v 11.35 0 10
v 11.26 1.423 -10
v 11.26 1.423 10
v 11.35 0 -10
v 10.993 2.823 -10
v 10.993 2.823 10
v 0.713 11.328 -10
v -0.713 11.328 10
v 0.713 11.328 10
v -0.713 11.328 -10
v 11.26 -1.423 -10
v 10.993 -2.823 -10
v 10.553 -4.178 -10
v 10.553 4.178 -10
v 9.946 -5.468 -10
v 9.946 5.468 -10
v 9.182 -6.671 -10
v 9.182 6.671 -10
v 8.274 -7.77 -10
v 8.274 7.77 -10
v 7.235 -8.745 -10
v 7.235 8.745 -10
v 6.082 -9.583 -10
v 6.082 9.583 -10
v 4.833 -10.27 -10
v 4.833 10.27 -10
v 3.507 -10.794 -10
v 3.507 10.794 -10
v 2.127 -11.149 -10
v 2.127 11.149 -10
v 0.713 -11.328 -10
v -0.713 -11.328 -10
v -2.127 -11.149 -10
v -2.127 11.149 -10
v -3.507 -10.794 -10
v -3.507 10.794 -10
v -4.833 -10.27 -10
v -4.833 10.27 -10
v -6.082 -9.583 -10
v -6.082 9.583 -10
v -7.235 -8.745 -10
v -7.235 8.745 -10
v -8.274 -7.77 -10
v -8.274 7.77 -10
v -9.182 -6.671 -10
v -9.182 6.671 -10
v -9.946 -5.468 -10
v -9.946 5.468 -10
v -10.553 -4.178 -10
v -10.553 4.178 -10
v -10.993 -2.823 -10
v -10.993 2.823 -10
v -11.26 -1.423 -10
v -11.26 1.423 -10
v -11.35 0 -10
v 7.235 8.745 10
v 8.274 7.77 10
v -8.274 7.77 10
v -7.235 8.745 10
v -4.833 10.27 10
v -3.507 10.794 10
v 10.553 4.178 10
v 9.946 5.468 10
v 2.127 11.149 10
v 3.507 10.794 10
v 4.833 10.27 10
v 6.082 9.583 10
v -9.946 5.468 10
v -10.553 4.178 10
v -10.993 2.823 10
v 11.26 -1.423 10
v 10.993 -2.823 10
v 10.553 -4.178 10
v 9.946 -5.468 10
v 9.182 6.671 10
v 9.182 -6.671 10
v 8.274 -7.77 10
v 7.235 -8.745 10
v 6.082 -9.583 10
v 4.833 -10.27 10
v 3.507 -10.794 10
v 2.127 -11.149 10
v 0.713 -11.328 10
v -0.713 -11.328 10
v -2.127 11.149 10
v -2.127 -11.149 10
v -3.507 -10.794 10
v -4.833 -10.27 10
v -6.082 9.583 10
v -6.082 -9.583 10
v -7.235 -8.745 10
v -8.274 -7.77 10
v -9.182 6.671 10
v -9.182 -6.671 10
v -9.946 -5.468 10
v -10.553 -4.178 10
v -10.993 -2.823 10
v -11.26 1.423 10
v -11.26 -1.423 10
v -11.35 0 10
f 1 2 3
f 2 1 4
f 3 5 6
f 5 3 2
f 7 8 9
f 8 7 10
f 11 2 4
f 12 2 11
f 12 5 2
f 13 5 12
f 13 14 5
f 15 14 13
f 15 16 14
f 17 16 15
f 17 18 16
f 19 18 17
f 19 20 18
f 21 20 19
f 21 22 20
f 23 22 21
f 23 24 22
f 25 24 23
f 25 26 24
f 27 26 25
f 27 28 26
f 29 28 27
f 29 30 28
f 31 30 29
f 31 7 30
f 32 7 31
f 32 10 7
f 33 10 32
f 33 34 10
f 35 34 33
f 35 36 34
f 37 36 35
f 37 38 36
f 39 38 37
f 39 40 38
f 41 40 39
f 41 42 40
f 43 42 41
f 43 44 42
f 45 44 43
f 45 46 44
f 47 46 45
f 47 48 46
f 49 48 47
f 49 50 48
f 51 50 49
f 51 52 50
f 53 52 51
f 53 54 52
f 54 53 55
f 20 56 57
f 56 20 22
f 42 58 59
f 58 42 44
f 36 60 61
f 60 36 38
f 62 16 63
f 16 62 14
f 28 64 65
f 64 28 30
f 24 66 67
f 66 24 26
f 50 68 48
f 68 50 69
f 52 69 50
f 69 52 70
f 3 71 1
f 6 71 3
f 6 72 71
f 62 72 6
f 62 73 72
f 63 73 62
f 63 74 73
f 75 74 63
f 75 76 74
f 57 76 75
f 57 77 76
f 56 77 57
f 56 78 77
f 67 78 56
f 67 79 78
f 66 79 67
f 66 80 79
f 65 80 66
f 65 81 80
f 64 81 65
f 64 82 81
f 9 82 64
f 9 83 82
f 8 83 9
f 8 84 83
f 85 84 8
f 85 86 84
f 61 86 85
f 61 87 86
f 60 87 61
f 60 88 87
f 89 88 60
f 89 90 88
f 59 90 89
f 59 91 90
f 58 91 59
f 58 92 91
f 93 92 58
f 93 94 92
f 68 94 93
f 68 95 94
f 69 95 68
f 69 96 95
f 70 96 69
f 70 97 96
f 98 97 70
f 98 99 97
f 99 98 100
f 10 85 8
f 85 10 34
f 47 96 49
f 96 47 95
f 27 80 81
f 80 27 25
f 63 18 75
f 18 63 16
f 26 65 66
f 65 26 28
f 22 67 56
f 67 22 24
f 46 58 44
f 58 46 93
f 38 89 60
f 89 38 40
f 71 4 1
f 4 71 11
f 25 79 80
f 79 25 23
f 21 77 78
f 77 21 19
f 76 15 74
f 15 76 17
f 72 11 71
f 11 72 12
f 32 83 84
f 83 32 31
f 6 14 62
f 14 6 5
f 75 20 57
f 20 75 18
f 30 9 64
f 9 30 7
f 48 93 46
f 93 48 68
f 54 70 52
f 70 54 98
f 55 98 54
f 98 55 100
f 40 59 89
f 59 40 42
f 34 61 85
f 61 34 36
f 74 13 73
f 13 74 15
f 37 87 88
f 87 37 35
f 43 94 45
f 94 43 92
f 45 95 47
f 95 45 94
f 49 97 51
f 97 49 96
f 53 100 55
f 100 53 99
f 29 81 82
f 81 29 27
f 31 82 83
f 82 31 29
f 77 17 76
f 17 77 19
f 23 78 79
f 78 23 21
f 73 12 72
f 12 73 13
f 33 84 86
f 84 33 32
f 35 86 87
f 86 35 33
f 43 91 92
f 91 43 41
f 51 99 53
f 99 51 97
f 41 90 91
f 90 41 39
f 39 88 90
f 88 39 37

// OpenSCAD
$fn = 50;


difference() {
	union() {
		translate(v = [0, 0, -10.0000000000]) {
			cylinder(h = 20, r = 11.3500000000);
		}
	}
	union() {
		translate(v = [0, 0, -100.0000000000]) {
			cylinder(h = 200, r = 0);
		}
	}
}
